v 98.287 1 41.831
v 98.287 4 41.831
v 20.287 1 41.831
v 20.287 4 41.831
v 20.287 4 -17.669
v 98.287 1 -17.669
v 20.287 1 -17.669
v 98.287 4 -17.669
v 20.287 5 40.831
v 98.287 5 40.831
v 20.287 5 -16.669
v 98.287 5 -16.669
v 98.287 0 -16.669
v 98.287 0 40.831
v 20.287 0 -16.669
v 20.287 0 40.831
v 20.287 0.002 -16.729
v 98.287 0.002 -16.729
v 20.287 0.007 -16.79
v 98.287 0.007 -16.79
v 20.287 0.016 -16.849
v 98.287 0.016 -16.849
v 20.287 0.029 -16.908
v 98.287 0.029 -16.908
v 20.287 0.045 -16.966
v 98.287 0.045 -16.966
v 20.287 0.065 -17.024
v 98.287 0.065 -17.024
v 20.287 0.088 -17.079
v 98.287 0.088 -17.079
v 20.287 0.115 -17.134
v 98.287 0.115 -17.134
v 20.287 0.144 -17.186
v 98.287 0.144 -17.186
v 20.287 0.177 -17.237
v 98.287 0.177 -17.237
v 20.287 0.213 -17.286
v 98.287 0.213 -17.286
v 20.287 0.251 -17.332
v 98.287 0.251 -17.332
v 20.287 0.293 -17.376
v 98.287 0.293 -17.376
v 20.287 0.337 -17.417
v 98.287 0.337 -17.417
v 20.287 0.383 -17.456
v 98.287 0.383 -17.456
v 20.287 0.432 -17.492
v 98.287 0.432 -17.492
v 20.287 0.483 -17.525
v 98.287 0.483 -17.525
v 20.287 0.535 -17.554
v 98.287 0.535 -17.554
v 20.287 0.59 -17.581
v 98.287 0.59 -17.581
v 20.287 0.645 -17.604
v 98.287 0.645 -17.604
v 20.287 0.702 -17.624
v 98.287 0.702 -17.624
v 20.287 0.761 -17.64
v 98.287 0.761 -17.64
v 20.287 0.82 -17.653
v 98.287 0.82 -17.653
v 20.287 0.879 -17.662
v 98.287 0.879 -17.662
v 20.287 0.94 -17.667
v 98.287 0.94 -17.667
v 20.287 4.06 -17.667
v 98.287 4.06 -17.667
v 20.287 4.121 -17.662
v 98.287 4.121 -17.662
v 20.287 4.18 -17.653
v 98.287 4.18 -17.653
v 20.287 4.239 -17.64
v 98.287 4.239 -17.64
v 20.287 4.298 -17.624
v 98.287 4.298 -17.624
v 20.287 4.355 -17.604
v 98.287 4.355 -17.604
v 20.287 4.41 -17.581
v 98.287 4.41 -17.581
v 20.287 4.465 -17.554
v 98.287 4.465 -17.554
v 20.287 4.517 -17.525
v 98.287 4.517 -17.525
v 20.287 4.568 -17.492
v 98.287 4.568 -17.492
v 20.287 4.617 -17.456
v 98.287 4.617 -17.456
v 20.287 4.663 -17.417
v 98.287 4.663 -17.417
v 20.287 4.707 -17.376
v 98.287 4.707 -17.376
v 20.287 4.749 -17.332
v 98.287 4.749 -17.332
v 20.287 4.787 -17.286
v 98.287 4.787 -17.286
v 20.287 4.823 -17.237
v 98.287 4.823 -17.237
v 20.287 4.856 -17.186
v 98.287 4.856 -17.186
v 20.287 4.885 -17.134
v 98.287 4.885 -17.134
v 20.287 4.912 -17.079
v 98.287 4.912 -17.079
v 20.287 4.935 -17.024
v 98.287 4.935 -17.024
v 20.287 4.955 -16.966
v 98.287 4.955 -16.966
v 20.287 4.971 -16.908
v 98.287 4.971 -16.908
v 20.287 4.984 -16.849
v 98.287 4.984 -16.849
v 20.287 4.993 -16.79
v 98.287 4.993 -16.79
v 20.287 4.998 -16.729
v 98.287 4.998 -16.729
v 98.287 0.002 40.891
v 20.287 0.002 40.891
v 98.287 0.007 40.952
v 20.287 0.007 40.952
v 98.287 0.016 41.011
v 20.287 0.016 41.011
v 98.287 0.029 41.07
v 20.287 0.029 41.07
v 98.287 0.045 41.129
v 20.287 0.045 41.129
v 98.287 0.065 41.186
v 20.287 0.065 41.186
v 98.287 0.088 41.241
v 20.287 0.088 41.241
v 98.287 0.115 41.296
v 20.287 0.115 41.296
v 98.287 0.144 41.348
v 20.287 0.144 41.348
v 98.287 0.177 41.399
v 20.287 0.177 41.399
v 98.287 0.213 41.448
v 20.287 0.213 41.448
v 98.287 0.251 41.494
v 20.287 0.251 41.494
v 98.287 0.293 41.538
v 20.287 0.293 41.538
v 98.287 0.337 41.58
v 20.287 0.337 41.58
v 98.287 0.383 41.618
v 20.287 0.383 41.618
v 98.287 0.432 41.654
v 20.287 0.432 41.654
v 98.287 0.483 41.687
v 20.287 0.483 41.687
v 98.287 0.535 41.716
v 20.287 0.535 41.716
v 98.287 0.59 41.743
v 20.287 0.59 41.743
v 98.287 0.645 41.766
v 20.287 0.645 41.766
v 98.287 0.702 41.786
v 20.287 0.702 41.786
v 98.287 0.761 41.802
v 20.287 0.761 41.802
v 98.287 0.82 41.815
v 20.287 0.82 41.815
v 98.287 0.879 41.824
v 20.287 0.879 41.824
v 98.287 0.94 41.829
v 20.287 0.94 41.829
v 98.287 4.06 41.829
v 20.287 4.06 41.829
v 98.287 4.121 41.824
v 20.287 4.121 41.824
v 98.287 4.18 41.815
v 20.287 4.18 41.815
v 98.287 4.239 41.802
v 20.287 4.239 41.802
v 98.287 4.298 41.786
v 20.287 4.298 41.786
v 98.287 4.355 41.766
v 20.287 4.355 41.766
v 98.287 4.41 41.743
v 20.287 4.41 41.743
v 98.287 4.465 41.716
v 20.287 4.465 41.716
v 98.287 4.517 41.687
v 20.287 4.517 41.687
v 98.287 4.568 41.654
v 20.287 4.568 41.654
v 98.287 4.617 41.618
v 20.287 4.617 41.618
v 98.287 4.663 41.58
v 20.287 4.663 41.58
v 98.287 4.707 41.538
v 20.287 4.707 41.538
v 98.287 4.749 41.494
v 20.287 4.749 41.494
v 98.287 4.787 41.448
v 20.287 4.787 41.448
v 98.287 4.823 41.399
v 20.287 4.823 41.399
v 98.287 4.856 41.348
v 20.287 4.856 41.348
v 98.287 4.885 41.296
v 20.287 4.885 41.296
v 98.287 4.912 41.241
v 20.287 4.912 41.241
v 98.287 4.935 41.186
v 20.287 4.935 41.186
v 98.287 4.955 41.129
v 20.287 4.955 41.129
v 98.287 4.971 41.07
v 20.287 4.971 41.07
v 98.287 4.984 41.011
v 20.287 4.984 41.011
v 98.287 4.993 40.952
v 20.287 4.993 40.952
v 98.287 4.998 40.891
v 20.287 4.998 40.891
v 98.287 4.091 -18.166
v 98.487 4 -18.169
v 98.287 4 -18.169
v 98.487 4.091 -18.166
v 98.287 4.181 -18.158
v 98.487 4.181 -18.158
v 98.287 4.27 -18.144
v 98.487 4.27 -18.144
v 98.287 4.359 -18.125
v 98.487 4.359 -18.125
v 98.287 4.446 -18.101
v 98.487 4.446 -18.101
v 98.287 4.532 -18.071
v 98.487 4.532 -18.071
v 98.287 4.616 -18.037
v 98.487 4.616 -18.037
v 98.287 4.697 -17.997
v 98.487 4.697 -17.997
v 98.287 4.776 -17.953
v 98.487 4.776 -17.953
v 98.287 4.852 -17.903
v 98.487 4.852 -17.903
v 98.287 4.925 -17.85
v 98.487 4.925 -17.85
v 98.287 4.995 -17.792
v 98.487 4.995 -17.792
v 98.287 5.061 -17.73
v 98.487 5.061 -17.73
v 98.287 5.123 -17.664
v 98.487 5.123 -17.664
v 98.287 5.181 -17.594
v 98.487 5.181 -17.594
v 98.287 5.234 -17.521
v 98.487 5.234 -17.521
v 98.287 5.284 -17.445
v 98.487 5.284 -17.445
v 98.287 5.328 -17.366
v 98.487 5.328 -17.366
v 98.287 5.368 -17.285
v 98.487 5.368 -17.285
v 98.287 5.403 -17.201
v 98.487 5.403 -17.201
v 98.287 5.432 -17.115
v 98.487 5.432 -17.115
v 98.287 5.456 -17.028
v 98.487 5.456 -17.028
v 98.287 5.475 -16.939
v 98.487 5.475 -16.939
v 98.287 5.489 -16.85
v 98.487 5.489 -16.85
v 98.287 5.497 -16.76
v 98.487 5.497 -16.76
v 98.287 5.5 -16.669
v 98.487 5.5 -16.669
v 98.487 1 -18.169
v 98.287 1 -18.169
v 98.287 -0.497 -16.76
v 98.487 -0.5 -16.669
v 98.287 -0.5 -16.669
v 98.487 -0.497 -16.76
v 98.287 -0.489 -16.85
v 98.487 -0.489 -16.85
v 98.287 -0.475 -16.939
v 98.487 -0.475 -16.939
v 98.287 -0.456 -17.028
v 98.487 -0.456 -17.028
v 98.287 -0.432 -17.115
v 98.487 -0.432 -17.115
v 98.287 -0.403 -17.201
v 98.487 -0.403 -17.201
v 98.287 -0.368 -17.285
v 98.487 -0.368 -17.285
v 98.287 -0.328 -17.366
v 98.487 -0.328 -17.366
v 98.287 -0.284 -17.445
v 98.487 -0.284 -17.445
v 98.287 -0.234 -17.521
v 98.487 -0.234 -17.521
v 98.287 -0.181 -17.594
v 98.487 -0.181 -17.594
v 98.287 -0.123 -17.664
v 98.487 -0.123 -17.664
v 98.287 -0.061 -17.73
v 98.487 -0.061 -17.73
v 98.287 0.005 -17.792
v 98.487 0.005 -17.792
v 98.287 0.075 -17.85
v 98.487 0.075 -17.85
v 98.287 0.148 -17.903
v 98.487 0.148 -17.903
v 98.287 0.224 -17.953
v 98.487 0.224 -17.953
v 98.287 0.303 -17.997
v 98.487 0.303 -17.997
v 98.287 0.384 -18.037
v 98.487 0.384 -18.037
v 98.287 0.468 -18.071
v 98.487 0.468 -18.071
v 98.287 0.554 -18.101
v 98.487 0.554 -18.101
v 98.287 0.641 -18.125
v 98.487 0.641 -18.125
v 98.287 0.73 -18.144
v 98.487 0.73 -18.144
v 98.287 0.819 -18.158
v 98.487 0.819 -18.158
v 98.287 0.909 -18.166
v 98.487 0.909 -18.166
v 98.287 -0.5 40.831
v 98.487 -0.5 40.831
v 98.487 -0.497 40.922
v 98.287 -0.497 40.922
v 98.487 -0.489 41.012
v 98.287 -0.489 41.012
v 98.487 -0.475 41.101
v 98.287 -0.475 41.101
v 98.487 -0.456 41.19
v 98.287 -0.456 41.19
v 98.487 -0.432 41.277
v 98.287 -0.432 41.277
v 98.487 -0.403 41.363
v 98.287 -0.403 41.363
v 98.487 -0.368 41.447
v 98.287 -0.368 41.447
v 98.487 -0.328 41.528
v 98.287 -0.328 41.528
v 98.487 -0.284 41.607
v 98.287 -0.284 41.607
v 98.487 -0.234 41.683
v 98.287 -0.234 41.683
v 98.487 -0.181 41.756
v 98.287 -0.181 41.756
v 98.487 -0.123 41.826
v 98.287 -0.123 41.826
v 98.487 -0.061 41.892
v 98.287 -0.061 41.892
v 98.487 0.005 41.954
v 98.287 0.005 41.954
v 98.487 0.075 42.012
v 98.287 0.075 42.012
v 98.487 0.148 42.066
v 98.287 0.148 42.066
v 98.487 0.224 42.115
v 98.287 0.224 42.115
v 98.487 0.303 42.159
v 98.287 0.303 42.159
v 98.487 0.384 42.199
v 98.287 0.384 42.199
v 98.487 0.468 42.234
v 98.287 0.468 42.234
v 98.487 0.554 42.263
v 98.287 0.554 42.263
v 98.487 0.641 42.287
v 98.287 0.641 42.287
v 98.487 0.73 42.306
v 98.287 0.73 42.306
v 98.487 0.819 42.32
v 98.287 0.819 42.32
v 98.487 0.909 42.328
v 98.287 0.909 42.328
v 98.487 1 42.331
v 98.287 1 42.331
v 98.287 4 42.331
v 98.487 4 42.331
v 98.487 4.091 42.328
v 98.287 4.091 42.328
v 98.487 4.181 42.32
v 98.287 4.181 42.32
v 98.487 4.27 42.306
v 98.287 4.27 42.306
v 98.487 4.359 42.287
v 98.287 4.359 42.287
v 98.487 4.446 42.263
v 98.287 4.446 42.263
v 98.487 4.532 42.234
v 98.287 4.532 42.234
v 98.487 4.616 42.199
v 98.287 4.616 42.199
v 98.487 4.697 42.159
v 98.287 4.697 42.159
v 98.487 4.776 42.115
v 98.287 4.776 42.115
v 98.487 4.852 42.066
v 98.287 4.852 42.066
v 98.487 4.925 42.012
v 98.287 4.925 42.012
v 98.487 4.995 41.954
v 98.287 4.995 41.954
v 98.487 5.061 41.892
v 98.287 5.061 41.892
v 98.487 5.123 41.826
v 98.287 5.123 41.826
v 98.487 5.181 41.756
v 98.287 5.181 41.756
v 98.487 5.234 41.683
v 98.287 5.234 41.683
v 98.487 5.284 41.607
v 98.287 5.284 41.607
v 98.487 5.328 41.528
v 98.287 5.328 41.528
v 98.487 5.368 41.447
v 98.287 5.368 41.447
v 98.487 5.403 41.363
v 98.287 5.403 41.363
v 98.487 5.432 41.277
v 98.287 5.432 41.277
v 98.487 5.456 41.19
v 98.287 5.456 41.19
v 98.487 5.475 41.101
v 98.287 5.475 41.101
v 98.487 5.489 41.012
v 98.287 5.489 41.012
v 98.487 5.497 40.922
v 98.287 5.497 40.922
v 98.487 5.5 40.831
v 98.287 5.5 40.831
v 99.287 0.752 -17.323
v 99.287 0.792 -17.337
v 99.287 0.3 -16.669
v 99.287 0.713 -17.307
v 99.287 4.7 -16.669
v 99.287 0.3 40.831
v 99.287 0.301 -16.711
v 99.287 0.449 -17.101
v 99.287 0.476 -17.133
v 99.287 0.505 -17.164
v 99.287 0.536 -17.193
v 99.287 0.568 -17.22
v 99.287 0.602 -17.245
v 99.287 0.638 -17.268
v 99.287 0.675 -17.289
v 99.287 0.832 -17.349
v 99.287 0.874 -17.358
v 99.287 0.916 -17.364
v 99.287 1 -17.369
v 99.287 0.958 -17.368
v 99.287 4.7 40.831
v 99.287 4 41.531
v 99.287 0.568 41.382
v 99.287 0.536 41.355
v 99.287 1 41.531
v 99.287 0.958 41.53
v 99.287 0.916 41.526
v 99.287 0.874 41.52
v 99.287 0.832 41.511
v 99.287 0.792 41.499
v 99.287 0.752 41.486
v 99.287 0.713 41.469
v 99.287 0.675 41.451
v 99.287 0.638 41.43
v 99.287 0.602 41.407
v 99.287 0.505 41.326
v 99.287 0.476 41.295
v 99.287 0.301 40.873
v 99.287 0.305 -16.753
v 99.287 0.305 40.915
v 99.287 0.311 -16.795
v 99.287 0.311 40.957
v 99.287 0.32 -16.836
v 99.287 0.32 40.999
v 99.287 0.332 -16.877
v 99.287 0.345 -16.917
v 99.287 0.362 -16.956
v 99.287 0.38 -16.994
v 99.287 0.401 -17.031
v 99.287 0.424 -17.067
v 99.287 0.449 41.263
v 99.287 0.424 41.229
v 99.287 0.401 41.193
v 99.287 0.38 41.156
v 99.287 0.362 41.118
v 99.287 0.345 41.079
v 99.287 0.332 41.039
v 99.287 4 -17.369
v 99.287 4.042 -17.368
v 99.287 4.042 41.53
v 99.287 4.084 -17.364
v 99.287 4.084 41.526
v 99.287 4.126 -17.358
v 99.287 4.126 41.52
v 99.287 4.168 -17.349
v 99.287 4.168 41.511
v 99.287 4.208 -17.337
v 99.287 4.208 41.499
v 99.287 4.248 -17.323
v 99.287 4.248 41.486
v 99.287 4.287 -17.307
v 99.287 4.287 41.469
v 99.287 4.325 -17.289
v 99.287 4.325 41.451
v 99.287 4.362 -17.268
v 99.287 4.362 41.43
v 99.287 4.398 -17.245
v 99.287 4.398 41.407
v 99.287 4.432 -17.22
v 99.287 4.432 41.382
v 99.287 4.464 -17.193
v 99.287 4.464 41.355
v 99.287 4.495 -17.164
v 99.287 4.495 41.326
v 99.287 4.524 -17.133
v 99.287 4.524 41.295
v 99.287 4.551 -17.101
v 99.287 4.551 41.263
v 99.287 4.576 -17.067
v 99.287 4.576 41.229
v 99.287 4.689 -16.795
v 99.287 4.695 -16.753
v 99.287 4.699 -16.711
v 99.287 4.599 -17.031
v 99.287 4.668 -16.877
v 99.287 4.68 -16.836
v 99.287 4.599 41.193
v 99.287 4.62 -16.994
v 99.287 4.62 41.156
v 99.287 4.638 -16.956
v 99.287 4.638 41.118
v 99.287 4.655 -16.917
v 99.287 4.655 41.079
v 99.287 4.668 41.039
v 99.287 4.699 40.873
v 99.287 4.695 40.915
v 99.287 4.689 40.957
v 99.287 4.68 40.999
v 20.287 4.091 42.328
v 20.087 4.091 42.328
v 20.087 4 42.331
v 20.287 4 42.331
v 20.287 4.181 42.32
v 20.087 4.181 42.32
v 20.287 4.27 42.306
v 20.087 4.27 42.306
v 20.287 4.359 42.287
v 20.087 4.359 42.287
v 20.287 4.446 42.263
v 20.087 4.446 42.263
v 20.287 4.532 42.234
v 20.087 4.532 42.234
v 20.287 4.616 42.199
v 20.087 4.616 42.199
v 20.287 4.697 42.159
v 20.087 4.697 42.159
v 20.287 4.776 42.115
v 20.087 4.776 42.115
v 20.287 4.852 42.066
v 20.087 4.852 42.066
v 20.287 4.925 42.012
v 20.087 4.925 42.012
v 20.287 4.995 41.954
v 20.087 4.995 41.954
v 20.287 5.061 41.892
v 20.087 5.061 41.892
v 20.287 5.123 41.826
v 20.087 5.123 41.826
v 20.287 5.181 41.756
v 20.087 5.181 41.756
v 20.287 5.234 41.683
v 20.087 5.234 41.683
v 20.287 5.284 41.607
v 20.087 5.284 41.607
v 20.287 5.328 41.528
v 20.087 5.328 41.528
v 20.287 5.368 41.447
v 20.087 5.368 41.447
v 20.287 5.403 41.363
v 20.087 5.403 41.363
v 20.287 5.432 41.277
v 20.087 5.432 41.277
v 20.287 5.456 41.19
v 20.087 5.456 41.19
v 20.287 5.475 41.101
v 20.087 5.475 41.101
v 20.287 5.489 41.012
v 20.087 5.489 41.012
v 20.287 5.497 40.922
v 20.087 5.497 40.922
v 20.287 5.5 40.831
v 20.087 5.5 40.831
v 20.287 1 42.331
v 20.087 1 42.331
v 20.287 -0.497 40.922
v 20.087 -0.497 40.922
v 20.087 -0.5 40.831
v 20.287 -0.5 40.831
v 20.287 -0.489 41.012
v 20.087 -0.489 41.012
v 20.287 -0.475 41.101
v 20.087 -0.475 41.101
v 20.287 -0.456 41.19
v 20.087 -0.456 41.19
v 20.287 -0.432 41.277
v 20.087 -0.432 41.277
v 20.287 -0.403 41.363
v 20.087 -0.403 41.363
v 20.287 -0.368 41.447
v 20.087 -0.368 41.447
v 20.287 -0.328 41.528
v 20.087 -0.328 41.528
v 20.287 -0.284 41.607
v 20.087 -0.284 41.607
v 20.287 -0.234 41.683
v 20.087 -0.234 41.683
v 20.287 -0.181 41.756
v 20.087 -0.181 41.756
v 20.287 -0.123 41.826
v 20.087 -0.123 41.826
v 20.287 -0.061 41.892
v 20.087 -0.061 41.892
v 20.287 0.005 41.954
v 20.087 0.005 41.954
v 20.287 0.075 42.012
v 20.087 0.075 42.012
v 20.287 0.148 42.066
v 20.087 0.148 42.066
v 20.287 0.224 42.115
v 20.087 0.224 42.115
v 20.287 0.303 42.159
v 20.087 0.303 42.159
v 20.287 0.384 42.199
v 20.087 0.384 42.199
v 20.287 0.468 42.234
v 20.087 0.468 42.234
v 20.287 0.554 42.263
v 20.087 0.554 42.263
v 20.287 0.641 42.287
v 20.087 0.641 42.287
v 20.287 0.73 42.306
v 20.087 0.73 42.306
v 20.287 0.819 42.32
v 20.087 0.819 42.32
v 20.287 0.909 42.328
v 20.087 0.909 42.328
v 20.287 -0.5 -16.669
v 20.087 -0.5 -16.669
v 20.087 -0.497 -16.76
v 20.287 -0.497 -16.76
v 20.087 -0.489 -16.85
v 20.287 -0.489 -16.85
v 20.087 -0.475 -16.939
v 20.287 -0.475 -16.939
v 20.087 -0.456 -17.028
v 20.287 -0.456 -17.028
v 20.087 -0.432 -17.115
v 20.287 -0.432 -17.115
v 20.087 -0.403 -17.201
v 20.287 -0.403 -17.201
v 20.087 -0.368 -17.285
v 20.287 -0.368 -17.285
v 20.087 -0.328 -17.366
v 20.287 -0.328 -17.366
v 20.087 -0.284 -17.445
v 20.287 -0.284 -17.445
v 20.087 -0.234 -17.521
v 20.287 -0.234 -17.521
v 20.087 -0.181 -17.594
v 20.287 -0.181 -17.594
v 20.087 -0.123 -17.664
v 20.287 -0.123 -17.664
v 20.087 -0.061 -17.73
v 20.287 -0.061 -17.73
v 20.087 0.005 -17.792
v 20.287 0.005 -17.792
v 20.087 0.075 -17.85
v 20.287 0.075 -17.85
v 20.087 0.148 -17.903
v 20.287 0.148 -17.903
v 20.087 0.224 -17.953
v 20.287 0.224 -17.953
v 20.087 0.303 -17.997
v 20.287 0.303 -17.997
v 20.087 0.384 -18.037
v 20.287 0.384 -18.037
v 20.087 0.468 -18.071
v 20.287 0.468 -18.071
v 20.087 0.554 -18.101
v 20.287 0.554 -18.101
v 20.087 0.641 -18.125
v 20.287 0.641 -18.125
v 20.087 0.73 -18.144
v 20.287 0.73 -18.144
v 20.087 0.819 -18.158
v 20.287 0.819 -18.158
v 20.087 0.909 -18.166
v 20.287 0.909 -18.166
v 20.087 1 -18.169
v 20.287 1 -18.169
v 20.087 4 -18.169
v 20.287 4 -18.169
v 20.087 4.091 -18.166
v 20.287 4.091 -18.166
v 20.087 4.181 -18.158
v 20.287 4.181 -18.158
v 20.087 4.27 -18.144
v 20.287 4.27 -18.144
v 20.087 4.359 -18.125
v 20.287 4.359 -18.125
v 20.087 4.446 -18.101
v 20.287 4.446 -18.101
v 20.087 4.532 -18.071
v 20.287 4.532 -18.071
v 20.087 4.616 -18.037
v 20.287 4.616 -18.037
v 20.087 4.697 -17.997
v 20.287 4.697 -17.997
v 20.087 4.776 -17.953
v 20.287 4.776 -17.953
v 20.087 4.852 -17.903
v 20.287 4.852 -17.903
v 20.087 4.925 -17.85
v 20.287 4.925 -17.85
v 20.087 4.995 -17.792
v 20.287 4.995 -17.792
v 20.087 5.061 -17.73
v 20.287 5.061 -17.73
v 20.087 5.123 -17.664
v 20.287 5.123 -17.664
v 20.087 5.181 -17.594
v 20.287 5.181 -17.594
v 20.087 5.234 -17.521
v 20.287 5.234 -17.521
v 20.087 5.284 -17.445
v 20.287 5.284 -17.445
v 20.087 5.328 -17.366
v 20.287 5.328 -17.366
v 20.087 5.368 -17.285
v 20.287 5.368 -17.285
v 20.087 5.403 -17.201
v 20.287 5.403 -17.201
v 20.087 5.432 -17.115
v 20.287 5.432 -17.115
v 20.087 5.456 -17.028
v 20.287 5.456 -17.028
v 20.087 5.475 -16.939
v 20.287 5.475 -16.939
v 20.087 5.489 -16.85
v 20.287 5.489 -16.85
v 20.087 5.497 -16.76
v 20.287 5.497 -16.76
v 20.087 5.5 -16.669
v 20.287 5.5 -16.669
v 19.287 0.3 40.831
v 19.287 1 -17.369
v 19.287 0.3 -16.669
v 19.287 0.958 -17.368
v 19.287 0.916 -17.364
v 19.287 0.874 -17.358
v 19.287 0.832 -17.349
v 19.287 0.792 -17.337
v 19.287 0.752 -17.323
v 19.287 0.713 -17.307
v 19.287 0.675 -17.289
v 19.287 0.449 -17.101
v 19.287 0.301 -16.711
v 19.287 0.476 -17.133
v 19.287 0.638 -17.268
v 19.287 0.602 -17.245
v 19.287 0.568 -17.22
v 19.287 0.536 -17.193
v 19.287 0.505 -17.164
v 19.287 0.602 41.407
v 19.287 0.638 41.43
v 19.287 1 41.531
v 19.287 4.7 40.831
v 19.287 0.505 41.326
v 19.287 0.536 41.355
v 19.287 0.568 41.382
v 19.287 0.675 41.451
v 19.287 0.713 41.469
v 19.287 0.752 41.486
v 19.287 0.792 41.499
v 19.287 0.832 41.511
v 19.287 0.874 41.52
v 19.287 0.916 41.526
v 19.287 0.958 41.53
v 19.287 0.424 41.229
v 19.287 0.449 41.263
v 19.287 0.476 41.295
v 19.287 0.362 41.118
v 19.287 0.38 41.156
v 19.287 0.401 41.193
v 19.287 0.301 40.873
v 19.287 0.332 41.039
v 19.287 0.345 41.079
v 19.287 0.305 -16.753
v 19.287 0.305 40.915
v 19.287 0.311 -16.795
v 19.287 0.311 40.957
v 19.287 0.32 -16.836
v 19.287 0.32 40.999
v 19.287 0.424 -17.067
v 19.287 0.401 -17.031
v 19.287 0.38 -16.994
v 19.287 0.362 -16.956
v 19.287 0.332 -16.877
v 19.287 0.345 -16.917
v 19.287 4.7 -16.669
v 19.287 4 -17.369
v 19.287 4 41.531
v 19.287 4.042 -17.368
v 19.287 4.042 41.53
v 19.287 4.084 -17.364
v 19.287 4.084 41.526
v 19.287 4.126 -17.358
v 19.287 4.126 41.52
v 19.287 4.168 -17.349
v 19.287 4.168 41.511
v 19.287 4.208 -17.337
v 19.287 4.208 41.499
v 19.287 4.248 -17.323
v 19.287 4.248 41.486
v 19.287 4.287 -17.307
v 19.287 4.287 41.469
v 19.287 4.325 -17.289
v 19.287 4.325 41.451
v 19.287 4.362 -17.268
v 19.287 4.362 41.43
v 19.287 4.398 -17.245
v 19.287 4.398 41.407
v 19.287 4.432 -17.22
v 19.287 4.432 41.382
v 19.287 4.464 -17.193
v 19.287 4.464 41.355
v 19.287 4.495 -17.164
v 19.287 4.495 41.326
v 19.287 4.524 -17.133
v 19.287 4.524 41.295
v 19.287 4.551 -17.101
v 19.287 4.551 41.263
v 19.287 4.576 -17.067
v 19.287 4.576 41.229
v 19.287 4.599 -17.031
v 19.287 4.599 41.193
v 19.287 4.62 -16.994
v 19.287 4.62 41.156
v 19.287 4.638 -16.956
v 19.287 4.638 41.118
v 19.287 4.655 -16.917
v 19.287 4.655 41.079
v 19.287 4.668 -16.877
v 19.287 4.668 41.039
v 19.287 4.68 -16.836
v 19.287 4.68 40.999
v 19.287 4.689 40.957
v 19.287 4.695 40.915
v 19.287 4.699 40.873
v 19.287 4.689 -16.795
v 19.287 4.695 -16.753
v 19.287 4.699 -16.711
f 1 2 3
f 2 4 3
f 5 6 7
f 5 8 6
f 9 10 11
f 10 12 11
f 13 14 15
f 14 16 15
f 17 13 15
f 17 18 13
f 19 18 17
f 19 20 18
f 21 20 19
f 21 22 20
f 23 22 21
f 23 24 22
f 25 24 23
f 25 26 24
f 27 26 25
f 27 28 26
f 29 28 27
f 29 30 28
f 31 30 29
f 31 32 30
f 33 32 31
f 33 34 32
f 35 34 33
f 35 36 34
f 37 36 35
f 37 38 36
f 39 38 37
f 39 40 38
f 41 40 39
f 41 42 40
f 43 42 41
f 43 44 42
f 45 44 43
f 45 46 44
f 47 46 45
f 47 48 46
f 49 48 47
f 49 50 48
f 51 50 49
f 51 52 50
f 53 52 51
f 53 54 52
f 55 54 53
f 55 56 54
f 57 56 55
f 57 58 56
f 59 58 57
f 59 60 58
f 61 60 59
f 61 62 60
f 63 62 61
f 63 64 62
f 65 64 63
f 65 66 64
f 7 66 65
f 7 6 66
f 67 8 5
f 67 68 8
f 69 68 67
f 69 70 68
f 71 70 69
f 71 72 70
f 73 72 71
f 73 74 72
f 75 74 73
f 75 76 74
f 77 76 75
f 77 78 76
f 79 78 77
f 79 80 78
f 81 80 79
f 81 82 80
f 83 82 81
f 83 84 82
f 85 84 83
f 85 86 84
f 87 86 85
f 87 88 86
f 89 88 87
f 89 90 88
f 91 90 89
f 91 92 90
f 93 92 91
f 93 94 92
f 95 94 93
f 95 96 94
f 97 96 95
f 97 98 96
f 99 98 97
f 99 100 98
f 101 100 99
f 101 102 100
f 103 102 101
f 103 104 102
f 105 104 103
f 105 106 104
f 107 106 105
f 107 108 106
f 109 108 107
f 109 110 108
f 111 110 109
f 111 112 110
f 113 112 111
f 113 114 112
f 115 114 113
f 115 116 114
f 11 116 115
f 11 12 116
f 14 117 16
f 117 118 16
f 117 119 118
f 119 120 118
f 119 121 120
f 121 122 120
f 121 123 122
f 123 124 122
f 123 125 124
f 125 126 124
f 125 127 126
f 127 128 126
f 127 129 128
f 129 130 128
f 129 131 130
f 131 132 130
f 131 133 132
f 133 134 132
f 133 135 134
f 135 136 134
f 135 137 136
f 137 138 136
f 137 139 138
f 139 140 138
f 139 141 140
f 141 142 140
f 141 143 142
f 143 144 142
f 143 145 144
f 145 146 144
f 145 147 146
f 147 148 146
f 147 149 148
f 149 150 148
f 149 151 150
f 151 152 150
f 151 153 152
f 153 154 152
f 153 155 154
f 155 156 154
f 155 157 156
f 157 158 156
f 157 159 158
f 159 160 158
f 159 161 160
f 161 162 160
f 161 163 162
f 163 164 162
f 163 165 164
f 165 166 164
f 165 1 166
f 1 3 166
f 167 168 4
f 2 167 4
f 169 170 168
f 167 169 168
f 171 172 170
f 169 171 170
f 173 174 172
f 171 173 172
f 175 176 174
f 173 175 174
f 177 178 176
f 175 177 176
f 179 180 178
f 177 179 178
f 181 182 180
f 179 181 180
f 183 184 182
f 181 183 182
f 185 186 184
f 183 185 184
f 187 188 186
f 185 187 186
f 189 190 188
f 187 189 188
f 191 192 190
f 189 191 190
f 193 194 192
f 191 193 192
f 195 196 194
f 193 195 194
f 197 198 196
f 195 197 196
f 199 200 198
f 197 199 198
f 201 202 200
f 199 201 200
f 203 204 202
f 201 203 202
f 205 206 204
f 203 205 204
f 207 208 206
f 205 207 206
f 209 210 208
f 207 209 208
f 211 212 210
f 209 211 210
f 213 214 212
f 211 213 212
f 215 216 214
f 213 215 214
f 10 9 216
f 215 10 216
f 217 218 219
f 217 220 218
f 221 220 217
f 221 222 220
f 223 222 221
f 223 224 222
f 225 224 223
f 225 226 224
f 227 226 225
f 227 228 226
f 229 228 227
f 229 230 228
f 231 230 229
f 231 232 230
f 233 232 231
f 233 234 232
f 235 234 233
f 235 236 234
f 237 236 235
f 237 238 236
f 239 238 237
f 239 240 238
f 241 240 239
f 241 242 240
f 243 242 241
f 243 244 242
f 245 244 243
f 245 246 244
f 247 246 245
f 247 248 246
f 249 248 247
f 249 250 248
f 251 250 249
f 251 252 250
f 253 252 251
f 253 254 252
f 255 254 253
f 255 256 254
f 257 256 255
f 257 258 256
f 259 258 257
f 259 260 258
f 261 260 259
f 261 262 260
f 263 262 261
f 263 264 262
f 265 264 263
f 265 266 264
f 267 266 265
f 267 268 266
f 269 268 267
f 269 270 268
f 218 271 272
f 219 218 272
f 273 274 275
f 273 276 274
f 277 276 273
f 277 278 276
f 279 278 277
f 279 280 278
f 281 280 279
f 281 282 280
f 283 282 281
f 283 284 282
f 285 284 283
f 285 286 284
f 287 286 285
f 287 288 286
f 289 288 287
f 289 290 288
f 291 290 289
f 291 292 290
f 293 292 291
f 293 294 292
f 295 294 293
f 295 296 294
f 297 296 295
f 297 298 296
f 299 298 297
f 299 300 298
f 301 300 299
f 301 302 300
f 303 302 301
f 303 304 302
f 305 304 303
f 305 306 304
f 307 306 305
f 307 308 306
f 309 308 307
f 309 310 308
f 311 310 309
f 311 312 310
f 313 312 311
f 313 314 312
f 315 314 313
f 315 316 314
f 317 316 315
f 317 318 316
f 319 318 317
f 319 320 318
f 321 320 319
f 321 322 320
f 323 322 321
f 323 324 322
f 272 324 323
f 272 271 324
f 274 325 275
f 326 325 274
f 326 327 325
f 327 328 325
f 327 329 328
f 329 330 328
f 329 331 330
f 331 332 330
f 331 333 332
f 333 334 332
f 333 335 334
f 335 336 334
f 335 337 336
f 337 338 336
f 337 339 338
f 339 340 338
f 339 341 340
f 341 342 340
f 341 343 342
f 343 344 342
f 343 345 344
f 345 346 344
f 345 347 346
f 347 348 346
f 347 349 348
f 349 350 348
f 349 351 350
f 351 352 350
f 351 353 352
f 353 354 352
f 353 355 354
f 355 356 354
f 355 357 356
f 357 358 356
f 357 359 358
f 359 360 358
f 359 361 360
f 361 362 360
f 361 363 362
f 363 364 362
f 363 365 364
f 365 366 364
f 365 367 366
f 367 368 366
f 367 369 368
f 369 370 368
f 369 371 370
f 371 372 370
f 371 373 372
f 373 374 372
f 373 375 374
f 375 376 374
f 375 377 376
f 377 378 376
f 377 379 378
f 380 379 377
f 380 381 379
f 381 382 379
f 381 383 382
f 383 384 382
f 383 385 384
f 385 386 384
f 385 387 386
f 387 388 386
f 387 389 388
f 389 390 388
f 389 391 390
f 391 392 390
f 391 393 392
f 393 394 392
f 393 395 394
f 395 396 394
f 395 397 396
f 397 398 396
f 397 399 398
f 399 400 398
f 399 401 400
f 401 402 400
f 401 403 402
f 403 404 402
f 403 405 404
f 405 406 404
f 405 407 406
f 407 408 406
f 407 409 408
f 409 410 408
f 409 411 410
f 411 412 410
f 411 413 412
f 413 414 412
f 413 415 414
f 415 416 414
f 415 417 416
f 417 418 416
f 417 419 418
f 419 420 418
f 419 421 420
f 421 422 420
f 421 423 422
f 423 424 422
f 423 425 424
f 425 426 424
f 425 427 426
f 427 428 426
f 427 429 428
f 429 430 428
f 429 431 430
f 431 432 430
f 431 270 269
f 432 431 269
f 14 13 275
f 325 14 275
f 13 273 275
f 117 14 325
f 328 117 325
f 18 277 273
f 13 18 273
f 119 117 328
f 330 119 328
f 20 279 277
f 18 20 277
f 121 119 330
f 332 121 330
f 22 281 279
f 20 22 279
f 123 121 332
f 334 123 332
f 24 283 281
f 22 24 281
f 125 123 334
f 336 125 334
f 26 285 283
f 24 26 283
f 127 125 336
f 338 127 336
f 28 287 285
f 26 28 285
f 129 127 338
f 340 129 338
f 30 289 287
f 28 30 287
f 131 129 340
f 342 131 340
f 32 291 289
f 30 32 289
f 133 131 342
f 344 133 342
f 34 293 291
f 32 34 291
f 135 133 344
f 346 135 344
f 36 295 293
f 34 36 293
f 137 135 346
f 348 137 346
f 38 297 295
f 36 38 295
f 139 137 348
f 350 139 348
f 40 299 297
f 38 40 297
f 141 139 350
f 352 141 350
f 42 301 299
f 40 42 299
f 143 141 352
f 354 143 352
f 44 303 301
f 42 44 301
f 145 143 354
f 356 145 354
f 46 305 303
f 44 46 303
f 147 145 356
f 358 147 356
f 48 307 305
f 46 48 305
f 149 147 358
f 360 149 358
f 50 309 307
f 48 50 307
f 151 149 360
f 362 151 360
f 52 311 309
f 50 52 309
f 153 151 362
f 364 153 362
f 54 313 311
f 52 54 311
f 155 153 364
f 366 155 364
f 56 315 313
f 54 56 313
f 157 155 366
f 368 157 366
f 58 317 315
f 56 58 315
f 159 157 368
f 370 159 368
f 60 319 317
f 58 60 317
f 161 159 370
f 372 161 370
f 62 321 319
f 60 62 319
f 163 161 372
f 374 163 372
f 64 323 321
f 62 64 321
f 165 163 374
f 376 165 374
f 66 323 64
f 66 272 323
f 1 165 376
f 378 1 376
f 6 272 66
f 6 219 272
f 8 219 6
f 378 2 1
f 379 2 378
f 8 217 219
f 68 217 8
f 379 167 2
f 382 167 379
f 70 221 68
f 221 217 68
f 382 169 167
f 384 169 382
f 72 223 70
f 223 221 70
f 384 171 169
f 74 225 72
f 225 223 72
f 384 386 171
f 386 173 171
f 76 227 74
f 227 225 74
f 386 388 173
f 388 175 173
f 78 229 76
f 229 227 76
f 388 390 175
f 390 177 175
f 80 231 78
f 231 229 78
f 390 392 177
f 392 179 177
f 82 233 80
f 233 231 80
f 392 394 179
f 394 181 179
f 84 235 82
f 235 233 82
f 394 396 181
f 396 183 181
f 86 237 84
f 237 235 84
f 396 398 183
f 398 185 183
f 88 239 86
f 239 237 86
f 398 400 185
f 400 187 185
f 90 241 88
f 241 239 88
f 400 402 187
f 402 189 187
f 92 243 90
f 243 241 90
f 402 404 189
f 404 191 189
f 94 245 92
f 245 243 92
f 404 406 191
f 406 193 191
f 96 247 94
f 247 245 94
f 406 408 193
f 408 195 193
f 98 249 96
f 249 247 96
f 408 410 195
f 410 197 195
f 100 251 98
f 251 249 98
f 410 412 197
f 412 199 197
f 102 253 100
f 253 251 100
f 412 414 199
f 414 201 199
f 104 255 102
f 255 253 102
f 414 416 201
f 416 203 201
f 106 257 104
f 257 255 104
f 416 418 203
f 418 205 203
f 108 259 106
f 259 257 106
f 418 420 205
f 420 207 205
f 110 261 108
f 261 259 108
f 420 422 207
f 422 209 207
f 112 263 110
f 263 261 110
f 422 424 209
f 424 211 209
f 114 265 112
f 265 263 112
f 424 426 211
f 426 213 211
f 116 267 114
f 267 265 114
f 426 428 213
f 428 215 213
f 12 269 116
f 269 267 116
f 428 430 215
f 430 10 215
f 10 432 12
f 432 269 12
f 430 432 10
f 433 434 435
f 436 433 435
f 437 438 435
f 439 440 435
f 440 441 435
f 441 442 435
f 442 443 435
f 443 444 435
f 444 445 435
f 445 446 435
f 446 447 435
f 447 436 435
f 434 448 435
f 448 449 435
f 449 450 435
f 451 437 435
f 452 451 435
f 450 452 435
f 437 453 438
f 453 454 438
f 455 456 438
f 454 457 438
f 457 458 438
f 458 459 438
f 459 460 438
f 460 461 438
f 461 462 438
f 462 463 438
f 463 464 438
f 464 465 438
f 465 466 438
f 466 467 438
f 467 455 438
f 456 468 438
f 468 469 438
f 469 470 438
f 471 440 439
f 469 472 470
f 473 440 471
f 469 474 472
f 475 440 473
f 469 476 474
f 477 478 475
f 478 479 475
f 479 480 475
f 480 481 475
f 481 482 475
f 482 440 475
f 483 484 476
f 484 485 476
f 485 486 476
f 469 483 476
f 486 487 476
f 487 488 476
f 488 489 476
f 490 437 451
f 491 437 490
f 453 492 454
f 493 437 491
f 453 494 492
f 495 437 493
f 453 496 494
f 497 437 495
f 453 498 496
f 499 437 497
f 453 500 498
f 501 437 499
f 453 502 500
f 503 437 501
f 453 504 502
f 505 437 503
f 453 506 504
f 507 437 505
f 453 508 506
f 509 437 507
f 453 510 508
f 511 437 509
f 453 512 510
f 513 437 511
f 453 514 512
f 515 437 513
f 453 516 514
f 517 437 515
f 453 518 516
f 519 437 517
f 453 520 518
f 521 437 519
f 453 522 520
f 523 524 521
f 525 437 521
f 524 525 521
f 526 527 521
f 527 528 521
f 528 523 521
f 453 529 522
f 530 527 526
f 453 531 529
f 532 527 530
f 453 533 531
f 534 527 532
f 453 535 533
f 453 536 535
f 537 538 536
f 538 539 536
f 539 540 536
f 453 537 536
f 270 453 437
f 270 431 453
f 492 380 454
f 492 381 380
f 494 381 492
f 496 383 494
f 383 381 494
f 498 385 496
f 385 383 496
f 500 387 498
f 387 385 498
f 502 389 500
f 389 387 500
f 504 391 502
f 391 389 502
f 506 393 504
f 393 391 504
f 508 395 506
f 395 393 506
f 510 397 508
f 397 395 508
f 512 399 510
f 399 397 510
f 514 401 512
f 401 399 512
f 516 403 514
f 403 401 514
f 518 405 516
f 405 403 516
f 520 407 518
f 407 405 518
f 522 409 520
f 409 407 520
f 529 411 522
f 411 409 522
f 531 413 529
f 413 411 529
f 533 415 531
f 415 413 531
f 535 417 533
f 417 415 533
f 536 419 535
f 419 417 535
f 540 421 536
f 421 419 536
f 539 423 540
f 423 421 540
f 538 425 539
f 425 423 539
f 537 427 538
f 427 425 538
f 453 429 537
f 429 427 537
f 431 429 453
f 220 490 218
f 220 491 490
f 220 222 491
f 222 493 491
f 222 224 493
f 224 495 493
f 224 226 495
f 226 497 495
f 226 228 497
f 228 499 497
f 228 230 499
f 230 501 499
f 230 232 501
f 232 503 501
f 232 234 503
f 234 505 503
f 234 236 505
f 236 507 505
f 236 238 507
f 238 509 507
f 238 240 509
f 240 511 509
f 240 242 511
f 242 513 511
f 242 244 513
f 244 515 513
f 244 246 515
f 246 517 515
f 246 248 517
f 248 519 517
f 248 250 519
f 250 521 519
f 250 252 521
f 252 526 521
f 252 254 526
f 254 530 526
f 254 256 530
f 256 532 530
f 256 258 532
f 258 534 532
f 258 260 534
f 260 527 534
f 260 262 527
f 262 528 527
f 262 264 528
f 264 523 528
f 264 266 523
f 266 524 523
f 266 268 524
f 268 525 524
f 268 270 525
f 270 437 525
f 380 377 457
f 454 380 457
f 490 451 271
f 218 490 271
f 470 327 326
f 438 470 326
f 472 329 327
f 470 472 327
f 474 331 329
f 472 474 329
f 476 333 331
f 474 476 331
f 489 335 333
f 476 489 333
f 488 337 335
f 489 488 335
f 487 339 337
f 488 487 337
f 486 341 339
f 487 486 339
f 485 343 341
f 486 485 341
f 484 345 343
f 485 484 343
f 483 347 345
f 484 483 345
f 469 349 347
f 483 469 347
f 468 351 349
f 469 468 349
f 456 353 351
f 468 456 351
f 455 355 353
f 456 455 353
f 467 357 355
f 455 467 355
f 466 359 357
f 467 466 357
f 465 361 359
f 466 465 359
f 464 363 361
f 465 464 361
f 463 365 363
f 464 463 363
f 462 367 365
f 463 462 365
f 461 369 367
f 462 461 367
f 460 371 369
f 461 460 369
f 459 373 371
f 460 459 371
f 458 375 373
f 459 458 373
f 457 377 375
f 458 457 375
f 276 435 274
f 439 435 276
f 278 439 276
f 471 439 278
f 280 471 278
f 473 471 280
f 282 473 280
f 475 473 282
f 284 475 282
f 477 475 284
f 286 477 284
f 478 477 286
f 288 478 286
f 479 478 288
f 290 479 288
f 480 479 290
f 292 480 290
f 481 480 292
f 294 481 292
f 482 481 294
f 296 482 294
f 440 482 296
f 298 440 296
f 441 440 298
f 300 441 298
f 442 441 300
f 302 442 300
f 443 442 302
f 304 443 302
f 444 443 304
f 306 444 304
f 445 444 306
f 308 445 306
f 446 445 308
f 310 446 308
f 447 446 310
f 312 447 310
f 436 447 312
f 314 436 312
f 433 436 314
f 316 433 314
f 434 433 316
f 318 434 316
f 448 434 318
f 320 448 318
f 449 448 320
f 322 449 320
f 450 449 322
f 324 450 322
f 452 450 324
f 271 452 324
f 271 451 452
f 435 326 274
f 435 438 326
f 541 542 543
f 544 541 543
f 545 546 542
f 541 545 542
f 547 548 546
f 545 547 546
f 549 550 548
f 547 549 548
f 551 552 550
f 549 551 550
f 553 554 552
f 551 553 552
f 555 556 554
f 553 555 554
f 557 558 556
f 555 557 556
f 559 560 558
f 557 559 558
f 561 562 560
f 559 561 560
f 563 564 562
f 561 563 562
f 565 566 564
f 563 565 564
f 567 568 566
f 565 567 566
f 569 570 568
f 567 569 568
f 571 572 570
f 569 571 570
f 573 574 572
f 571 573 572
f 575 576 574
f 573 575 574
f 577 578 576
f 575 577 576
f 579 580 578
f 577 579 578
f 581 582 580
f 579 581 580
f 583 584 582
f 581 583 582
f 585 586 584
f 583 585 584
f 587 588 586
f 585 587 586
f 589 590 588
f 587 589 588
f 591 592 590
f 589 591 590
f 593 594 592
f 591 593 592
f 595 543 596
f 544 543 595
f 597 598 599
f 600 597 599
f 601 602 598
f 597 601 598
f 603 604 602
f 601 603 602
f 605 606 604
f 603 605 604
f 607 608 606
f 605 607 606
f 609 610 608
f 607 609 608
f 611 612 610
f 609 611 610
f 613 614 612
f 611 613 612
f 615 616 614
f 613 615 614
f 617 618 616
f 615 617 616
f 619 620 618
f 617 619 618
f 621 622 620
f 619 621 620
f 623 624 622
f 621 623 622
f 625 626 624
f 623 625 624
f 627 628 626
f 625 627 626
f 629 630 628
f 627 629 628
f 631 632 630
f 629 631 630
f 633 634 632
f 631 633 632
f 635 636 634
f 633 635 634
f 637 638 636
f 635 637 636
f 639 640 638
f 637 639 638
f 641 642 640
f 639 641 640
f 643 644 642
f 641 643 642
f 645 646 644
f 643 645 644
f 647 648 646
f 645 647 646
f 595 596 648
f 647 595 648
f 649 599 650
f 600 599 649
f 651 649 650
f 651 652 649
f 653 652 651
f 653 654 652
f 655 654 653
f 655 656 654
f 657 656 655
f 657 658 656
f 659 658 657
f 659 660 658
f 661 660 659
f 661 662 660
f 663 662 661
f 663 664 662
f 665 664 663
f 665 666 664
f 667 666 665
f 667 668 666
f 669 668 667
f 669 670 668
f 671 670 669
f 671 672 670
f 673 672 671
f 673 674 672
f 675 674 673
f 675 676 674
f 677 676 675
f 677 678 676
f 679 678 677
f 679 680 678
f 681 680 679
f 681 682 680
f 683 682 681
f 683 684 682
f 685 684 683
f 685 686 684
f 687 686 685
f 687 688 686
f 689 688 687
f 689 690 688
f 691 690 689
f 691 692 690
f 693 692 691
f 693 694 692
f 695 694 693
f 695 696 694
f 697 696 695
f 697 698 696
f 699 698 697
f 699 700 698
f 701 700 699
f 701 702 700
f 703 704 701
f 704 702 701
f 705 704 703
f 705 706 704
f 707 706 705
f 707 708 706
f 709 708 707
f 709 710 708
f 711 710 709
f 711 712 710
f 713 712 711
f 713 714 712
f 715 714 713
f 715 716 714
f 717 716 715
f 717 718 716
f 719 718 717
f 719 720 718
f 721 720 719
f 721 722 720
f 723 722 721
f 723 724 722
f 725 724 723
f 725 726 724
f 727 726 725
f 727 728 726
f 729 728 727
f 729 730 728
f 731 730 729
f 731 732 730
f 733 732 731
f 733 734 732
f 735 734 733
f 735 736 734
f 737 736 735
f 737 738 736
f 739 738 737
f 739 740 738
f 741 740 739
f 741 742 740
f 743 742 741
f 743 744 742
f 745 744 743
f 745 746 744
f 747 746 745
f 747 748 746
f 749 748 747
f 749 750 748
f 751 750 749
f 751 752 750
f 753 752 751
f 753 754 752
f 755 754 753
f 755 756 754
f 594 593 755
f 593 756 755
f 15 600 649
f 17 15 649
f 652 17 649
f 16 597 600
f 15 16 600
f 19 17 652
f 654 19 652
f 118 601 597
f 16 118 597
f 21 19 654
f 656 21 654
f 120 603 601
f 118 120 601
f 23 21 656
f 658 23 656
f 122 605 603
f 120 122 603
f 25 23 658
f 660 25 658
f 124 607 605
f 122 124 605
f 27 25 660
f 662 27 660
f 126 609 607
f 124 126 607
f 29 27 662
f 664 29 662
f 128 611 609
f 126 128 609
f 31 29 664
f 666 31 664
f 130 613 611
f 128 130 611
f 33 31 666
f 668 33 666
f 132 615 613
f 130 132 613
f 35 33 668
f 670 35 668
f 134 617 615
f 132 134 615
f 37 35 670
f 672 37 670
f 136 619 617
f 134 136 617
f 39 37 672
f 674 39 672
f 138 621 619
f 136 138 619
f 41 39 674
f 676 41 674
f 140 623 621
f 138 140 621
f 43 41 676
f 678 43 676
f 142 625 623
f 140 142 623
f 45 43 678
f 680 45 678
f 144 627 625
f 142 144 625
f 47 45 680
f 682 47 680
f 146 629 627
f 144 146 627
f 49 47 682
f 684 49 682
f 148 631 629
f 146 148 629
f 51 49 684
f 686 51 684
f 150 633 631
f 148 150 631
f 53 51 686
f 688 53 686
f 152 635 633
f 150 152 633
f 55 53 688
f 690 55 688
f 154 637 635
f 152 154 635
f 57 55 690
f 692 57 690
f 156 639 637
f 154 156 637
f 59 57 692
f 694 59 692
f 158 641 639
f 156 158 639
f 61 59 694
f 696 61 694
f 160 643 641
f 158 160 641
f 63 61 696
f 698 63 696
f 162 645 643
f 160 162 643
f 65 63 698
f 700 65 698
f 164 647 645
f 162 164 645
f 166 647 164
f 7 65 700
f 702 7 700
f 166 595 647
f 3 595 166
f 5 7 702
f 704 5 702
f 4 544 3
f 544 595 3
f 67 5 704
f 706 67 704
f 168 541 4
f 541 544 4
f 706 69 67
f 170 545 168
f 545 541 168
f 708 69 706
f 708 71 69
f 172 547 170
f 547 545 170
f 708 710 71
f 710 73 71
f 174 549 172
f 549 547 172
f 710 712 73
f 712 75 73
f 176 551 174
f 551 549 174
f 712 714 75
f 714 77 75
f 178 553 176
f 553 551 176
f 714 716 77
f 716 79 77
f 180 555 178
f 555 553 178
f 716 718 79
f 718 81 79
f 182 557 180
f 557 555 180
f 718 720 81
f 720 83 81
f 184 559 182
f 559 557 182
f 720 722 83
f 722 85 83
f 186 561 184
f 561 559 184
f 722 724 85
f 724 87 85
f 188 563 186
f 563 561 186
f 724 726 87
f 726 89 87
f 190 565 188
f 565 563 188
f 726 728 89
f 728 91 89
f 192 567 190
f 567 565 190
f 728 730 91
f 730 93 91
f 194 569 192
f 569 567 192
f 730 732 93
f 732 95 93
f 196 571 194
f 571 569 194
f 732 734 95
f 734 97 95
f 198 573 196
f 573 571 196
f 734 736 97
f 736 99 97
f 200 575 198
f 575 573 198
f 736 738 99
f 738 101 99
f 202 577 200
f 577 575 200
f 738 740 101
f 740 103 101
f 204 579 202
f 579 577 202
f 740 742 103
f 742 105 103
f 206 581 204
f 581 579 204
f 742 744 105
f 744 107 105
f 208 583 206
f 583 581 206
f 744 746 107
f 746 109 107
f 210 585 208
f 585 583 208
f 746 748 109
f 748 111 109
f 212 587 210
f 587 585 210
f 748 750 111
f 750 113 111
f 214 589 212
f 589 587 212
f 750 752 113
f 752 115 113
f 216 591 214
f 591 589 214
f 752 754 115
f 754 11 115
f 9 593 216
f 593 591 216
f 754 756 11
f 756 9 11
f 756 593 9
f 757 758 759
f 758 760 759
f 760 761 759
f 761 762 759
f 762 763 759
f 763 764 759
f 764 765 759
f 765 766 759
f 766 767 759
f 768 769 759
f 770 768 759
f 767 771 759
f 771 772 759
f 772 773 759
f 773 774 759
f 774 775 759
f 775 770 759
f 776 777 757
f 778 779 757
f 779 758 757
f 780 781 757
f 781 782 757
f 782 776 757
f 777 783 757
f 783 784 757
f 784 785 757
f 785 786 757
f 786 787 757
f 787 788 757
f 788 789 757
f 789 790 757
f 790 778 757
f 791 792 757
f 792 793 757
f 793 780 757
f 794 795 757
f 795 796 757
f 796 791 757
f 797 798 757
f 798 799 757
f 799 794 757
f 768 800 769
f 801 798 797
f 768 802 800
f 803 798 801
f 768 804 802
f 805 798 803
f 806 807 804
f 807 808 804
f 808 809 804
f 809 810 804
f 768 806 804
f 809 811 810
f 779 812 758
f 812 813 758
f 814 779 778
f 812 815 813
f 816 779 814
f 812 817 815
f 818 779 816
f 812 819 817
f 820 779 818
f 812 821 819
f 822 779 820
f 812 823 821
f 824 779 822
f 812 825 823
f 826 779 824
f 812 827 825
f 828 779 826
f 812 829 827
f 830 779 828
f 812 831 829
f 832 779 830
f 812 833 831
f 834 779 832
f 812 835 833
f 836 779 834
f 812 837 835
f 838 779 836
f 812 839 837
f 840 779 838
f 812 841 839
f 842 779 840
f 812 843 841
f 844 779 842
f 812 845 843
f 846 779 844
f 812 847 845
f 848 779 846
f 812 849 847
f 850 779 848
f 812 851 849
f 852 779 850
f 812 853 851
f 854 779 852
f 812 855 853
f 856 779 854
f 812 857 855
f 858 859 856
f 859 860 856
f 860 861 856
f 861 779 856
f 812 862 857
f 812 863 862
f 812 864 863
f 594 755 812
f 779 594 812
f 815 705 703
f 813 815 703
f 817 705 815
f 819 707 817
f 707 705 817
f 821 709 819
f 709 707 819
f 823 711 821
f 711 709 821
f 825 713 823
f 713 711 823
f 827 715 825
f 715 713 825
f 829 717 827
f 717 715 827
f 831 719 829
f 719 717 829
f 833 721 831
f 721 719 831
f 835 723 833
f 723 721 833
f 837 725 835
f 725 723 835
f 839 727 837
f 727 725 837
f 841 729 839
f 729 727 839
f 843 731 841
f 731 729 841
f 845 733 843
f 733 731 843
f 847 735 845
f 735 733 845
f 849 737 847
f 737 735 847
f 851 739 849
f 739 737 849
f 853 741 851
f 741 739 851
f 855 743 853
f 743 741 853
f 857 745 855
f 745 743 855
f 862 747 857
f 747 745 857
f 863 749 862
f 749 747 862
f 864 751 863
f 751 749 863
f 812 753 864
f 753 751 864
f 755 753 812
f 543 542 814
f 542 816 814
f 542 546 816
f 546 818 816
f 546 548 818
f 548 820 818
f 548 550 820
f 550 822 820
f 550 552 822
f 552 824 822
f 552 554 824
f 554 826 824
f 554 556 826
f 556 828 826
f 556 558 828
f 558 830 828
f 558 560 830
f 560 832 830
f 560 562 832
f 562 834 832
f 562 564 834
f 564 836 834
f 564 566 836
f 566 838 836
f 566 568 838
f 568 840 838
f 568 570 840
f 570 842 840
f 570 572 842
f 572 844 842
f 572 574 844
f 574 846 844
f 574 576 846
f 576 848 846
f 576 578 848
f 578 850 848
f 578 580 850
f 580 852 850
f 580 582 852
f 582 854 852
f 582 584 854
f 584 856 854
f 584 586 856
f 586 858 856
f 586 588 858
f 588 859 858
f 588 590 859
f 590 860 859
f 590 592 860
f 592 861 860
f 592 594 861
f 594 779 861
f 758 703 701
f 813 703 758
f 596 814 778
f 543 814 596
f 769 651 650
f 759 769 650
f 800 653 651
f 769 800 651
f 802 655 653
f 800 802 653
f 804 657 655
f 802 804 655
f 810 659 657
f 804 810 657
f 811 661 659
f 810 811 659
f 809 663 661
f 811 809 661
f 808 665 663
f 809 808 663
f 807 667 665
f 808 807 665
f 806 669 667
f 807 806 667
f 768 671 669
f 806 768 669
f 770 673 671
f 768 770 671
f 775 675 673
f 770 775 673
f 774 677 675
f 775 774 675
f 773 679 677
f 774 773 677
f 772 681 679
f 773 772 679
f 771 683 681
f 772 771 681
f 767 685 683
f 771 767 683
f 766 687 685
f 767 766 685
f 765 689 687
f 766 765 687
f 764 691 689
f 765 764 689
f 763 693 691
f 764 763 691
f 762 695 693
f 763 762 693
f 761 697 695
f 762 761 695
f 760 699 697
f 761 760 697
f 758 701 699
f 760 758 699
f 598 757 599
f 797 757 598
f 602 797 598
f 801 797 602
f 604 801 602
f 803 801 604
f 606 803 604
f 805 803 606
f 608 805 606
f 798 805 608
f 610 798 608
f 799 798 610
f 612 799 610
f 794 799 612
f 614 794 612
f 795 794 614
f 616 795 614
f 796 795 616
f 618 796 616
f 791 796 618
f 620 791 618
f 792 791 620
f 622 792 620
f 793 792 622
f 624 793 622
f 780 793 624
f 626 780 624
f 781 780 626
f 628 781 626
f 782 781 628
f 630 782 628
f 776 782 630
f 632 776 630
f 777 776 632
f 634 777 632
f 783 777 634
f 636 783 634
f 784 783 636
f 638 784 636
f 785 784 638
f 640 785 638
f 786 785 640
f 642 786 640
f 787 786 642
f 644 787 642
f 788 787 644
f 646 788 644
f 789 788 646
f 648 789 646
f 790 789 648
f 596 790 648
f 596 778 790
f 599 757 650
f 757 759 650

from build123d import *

# Parameters (mm, degrees)
SKETCH_1_W      = 80
SKETCH_1_H      = 59.5
EXTRUDE_1_DEPTH = 5
FILLET_1_R      = 1
EXTRUDE_2_DEPTH = 1
CHAMFER_1_SIZE  = 0.8
EXTRUDE_START   = -1
EXTRUDE_3_DEPTH = 1
CHAMFER_2_SIZE  = 0.8


with BuildPart() as part:
    # 草图1 → 凸台-拉伸1 (new body)
    with BuildSketch(Plane(origin=(0, 0, 0), x_dir=(1, 0, 0), z_dir=(0, 1, 0))):
        with Locations((59.287159713, -12.081031523)):
            Rectangle(SKETCH_1_W, SKETCH_1_H)
    extrude(amount=EXTRUDE_1_DEPTH)

    # 圆角1
    fillet_1_edges = [part.edges().sort_by_distance(p)[0] for p in [
        (59.287159713, 5, -17.668968477),
        (59.287159713, 0, -17.668968477),
        (59.287159713, 0, 41.831031523),
        (59.287159713, 5, 41.831031523),
    ]]
    fillet(fillet_1_edges, radius=FILLET_1_R)

    # 草图2 → 凸台-拉伸2 (add)
    with BuildSketch(Plane(origin=(99.287159713, 0, 0), x_dir=(0, 0, -1), z_dir=(1, 0, 0))):
        with BuildLine():
            Line((16.668968477, 5.5), (-40.831031523, 5.5))
            ThreePointArc((-40.831031523, 5.5), (-41.891691695, 5.060660172), (-42.331031523, 4))
            Line((-42.331031523, 4), (-42.331031523, 1))
            ThreePointArc((-42.331031523, 1), (-41.891691695, -0.060660172), (-40.831031523, -0.5))
            Line((-40.831031523, -0.5), (16.668968477, -0.5))
            ThreePointArc((16.668968477, -0.5), (17.729628648, -0.060660172), (18.168968477, 1))
            Line((18.168968477, 1), (18.168968477, 4))
            ThreePointArc((18.168968477, 4), (17.729628648, 5.060660172), (16.668968477, 5.5))
        make_face()
    extrude(amount=-EXTRUDE_2_DEPTH)

    # 倒角1
    chamfer_1_edges = [part.edges().sort_by_distance(p)[0] for p in [
        (99.287159713, 5.060660172, -17.729628648),
        (99.287159713, 5.5, 12.081031523),
        (99.287159713, 5.060660172, 41.891691695),
        (99.287159713, 2.5, 42.331031523),
        (99.287159713, -0.060660172, 41.891691695),
        (99.287159713, -0.5, 12.081031523),
        (99.287159713, -0.060660172, -17.729628648),
        (99.287159713, 2.5, -18.168968477),
    ]]
    chamfer(chamfer_1_edges, length=CHAMFER_1_SIZE)

    # 草图3 → 凸台-拉伸3 (add)
    with BuildSketch(Plane.ZY.offset(-19.287159713).offset(EXTRUDE_START)):
        with BuildLine():
            Line((40.831031523, 5.5), (-16.668968477, 5.5))
            ThreePointArc((-16.668968477, 5.5), (-17.729628648, 5.060660172), (-18.168968477, 4))
            Line((-18.168968477, 4), (-18.168968477, 1))
            ThreePointArc((-18.168968477, 1), (-17.729628648, -0.060660172), (-16.668968477, -0.5))
            Line((-16.668968477, -0.5), (40.831031523, -0.5))
            ThreePointArc((40.831031523, -0.5), (41.891691695, -0.060660172), (42.331031523, 1))
            Line((42.331031523, 1), (42.331031523, 4))
            ThreePointArc((42.331031523, 4), (41.891691695, 5.060660172), (40.831031523, 5.5))
        make_face()
    extrude(amount=EXTRUDE_3_DEPTH)

    # 倒角2
    chamfer_2_edges = [part.edges().sort_by_distance(p)[0] for p in [
        (19.287159713, 5.060660172, 41.891691695),
        (19.287159713, 5.5, 12.081031523),
        (19.287159713, 5.060660172, -17.729628648),
        (19.287159713, 2.5, -18.168968477),
        (19.287159713, -0.060660172, -17.729628648),
        (19.287159713, -0.5, 12.081031523),
        (19.287159713, -0.060660172, 41.891691695),
        (19.287159713, 2.5, 42.331031523),
    ]]
    chamfer(chamfer_2_edges, length=CHAMFER_2_SIZE)


solid = part.part
